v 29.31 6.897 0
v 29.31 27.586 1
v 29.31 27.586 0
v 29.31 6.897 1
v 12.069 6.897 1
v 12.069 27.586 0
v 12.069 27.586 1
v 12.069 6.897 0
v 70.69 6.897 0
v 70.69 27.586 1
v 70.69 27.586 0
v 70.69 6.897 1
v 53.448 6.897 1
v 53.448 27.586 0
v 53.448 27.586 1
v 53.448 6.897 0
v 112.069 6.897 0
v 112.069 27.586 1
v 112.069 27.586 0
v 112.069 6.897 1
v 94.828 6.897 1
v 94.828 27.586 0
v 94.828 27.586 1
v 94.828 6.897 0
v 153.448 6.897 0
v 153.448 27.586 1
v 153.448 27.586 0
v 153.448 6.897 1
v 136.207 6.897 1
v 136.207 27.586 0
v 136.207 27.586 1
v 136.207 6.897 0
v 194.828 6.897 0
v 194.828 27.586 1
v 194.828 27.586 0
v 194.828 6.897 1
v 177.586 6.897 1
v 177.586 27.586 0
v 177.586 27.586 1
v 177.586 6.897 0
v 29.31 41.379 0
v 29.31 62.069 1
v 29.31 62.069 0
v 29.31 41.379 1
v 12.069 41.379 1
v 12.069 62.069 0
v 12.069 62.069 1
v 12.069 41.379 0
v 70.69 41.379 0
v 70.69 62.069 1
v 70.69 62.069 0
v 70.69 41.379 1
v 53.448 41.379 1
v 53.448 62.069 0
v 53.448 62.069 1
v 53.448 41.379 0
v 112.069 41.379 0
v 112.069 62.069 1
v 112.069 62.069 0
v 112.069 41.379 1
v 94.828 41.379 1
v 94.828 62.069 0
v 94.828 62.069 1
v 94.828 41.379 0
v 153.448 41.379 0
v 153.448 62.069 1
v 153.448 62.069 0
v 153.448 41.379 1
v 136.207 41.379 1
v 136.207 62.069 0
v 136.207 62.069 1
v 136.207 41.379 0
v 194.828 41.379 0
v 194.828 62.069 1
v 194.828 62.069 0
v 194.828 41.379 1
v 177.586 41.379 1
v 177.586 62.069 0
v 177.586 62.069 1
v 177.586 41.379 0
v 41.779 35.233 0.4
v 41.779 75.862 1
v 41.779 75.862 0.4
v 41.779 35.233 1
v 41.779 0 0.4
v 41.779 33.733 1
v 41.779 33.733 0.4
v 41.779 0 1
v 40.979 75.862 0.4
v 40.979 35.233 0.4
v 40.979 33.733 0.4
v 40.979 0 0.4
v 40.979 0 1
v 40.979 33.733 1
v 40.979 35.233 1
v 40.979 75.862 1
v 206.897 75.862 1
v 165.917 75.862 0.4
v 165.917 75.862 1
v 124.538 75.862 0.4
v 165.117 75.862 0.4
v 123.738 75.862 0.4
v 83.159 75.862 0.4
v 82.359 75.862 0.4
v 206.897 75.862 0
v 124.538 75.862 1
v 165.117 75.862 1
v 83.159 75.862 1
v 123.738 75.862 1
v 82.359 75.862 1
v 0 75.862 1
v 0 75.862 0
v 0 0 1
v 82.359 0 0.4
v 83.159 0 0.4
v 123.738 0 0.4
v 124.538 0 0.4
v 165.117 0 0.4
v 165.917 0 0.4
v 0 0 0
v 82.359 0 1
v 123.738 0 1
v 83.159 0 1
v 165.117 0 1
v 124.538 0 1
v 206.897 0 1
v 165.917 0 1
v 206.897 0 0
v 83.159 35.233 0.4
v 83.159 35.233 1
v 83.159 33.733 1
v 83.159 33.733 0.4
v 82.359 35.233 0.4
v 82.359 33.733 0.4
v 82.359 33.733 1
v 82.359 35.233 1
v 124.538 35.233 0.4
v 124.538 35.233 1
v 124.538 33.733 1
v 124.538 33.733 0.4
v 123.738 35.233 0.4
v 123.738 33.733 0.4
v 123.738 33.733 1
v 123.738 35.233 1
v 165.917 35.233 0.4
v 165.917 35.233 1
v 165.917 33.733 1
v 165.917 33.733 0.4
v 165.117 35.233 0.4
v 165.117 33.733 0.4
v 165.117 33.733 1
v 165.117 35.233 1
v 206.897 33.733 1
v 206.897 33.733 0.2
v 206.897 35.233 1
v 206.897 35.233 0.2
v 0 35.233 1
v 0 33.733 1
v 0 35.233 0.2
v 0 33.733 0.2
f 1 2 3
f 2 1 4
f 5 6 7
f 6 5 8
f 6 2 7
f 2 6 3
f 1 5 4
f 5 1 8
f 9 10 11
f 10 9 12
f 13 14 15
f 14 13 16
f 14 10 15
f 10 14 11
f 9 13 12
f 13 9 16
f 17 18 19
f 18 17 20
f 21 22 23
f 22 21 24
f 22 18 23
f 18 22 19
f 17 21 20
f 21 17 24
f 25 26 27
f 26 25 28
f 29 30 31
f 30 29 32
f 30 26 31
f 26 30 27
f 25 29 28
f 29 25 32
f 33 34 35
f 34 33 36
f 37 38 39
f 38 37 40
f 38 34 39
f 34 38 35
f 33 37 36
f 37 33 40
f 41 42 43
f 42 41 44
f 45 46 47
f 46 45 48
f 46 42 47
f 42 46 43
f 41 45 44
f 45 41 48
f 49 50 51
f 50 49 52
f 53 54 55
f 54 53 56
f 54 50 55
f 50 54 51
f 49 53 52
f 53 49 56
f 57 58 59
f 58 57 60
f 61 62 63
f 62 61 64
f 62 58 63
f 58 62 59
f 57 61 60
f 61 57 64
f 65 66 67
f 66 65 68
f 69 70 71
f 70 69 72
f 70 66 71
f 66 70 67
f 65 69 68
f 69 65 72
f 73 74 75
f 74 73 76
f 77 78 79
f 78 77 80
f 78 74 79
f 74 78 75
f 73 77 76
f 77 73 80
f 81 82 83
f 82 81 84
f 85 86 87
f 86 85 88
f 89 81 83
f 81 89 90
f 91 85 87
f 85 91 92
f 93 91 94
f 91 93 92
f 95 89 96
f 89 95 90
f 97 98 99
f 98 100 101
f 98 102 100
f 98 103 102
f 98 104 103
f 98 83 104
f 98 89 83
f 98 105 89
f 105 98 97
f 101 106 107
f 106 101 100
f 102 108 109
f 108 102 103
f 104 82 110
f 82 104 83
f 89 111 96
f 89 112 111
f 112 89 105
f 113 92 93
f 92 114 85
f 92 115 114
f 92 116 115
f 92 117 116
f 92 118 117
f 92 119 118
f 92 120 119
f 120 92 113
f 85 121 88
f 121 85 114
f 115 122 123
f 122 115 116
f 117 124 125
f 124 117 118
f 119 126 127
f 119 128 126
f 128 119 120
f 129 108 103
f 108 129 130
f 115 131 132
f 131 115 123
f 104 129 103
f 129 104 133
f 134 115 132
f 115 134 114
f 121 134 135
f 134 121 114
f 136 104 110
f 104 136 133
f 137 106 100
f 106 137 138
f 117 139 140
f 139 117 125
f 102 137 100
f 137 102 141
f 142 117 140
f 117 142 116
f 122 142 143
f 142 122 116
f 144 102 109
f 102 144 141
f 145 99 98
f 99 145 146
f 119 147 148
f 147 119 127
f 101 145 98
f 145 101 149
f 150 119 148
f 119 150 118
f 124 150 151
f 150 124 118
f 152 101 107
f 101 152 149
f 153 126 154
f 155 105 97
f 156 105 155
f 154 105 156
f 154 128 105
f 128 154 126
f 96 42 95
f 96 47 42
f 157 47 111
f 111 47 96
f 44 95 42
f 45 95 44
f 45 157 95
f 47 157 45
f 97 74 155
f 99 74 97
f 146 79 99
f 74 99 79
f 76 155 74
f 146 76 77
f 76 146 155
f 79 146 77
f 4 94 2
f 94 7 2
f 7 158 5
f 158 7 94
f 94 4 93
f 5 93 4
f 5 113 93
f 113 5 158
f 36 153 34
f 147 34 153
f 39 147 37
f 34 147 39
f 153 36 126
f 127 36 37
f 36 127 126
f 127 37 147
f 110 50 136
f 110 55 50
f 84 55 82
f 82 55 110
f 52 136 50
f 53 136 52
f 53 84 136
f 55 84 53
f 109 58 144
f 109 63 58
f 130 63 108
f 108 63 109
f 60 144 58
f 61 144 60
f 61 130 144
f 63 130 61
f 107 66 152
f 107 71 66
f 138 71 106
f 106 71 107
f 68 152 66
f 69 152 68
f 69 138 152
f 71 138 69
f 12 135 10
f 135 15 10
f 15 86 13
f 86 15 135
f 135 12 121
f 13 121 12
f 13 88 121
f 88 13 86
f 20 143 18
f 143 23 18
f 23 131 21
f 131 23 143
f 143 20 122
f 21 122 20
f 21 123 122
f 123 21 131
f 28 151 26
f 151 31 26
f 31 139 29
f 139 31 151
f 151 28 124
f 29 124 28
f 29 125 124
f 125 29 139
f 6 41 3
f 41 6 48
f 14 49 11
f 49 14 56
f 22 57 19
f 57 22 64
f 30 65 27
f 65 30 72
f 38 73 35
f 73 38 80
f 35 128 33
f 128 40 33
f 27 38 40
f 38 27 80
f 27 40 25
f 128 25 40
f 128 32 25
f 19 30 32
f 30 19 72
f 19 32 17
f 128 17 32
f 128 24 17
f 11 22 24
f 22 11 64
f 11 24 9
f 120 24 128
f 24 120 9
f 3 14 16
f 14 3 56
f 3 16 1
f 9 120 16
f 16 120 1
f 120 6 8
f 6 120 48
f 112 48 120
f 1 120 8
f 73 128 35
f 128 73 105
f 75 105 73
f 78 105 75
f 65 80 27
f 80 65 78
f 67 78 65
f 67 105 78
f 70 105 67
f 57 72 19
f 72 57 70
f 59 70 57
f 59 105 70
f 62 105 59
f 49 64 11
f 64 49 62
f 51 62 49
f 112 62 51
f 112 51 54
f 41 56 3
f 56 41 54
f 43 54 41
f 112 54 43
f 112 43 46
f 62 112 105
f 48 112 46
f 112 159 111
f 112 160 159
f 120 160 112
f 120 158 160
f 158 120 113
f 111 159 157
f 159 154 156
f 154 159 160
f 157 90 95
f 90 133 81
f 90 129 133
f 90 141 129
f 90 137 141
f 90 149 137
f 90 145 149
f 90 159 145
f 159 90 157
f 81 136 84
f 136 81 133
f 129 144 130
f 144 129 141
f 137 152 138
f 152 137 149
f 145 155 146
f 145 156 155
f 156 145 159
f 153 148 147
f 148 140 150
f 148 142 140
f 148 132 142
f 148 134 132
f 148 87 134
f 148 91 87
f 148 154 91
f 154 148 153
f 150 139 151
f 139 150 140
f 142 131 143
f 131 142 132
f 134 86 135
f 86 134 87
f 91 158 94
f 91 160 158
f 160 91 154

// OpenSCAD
/*
 * PROMPT: H0 scale (1:87) PRL-era police station back wall panel, flat for FDM printing.
 * Five bays, windows in all five bays on both floors (no door).
 * Horizontal cornice groove at floor line, vertical panel-joint grooves at bay boundaries.
 */

$fn = 32;

S          = 1/87;
panel_t    = 1.0;

bld_w      = 18000*S;   // 206.9 mm
floor_h    = 3000*S;    //  34.5 mm
bld_h      = 2*floor_h; //  69.0 mm
parapet_h  = 600*S;     //   6.9 mm
wall_panel_h = bld_h + parapet_h; // 75.9 mm

n_bays     = 5;
bay_w      = bld_w / n_bays;  // 41.4 mm

win_w      = 1500*S;    // 17.2 mm
win_h      = 1800*S;    // 20.7 mm

cornice_w  = 1.5;
cornice_d  = 0.8;
groove_w   = 0.8;
groove_d   = 0.6;

module wall_back() {
    difference() {
        // Base slab, exterior face at Z = panel_t (face up)
        cube([bld_w, wall_panel_h, panel_t]);

        // --- Windows: all 5 bays, both floors ---
        for (f = [0:1]) {
            for (b = [0:n_bays-1]) {
                wx = b*bay_w + (bay_w - win_w)/2;
                wy = f*floor_h + (floor_h - win_h)/2;
                translate([wx, wy, -1])
                    cube([win_w, win_h, panel_t+2]);
            }
        }

        // --- Vertical panel-joint grooves on exterior face ---
        for (b = [1:n_bays-1]) {
            gx = b*bay_w - groove_w/2;
            translate([gx, 0, panel_t - groove_d])
                cube([groove_w, wall_panel_h, groove_d+1]);
        }

        // --- Horizontal cornice groove at floor line ---
        cy = floor_h - cornice_w/2;
        translate([0, cy, panel_t - cornice_d])
            cube([bld_w, cornice_w, cornice_d+1]);
    }
}

wall_back();
